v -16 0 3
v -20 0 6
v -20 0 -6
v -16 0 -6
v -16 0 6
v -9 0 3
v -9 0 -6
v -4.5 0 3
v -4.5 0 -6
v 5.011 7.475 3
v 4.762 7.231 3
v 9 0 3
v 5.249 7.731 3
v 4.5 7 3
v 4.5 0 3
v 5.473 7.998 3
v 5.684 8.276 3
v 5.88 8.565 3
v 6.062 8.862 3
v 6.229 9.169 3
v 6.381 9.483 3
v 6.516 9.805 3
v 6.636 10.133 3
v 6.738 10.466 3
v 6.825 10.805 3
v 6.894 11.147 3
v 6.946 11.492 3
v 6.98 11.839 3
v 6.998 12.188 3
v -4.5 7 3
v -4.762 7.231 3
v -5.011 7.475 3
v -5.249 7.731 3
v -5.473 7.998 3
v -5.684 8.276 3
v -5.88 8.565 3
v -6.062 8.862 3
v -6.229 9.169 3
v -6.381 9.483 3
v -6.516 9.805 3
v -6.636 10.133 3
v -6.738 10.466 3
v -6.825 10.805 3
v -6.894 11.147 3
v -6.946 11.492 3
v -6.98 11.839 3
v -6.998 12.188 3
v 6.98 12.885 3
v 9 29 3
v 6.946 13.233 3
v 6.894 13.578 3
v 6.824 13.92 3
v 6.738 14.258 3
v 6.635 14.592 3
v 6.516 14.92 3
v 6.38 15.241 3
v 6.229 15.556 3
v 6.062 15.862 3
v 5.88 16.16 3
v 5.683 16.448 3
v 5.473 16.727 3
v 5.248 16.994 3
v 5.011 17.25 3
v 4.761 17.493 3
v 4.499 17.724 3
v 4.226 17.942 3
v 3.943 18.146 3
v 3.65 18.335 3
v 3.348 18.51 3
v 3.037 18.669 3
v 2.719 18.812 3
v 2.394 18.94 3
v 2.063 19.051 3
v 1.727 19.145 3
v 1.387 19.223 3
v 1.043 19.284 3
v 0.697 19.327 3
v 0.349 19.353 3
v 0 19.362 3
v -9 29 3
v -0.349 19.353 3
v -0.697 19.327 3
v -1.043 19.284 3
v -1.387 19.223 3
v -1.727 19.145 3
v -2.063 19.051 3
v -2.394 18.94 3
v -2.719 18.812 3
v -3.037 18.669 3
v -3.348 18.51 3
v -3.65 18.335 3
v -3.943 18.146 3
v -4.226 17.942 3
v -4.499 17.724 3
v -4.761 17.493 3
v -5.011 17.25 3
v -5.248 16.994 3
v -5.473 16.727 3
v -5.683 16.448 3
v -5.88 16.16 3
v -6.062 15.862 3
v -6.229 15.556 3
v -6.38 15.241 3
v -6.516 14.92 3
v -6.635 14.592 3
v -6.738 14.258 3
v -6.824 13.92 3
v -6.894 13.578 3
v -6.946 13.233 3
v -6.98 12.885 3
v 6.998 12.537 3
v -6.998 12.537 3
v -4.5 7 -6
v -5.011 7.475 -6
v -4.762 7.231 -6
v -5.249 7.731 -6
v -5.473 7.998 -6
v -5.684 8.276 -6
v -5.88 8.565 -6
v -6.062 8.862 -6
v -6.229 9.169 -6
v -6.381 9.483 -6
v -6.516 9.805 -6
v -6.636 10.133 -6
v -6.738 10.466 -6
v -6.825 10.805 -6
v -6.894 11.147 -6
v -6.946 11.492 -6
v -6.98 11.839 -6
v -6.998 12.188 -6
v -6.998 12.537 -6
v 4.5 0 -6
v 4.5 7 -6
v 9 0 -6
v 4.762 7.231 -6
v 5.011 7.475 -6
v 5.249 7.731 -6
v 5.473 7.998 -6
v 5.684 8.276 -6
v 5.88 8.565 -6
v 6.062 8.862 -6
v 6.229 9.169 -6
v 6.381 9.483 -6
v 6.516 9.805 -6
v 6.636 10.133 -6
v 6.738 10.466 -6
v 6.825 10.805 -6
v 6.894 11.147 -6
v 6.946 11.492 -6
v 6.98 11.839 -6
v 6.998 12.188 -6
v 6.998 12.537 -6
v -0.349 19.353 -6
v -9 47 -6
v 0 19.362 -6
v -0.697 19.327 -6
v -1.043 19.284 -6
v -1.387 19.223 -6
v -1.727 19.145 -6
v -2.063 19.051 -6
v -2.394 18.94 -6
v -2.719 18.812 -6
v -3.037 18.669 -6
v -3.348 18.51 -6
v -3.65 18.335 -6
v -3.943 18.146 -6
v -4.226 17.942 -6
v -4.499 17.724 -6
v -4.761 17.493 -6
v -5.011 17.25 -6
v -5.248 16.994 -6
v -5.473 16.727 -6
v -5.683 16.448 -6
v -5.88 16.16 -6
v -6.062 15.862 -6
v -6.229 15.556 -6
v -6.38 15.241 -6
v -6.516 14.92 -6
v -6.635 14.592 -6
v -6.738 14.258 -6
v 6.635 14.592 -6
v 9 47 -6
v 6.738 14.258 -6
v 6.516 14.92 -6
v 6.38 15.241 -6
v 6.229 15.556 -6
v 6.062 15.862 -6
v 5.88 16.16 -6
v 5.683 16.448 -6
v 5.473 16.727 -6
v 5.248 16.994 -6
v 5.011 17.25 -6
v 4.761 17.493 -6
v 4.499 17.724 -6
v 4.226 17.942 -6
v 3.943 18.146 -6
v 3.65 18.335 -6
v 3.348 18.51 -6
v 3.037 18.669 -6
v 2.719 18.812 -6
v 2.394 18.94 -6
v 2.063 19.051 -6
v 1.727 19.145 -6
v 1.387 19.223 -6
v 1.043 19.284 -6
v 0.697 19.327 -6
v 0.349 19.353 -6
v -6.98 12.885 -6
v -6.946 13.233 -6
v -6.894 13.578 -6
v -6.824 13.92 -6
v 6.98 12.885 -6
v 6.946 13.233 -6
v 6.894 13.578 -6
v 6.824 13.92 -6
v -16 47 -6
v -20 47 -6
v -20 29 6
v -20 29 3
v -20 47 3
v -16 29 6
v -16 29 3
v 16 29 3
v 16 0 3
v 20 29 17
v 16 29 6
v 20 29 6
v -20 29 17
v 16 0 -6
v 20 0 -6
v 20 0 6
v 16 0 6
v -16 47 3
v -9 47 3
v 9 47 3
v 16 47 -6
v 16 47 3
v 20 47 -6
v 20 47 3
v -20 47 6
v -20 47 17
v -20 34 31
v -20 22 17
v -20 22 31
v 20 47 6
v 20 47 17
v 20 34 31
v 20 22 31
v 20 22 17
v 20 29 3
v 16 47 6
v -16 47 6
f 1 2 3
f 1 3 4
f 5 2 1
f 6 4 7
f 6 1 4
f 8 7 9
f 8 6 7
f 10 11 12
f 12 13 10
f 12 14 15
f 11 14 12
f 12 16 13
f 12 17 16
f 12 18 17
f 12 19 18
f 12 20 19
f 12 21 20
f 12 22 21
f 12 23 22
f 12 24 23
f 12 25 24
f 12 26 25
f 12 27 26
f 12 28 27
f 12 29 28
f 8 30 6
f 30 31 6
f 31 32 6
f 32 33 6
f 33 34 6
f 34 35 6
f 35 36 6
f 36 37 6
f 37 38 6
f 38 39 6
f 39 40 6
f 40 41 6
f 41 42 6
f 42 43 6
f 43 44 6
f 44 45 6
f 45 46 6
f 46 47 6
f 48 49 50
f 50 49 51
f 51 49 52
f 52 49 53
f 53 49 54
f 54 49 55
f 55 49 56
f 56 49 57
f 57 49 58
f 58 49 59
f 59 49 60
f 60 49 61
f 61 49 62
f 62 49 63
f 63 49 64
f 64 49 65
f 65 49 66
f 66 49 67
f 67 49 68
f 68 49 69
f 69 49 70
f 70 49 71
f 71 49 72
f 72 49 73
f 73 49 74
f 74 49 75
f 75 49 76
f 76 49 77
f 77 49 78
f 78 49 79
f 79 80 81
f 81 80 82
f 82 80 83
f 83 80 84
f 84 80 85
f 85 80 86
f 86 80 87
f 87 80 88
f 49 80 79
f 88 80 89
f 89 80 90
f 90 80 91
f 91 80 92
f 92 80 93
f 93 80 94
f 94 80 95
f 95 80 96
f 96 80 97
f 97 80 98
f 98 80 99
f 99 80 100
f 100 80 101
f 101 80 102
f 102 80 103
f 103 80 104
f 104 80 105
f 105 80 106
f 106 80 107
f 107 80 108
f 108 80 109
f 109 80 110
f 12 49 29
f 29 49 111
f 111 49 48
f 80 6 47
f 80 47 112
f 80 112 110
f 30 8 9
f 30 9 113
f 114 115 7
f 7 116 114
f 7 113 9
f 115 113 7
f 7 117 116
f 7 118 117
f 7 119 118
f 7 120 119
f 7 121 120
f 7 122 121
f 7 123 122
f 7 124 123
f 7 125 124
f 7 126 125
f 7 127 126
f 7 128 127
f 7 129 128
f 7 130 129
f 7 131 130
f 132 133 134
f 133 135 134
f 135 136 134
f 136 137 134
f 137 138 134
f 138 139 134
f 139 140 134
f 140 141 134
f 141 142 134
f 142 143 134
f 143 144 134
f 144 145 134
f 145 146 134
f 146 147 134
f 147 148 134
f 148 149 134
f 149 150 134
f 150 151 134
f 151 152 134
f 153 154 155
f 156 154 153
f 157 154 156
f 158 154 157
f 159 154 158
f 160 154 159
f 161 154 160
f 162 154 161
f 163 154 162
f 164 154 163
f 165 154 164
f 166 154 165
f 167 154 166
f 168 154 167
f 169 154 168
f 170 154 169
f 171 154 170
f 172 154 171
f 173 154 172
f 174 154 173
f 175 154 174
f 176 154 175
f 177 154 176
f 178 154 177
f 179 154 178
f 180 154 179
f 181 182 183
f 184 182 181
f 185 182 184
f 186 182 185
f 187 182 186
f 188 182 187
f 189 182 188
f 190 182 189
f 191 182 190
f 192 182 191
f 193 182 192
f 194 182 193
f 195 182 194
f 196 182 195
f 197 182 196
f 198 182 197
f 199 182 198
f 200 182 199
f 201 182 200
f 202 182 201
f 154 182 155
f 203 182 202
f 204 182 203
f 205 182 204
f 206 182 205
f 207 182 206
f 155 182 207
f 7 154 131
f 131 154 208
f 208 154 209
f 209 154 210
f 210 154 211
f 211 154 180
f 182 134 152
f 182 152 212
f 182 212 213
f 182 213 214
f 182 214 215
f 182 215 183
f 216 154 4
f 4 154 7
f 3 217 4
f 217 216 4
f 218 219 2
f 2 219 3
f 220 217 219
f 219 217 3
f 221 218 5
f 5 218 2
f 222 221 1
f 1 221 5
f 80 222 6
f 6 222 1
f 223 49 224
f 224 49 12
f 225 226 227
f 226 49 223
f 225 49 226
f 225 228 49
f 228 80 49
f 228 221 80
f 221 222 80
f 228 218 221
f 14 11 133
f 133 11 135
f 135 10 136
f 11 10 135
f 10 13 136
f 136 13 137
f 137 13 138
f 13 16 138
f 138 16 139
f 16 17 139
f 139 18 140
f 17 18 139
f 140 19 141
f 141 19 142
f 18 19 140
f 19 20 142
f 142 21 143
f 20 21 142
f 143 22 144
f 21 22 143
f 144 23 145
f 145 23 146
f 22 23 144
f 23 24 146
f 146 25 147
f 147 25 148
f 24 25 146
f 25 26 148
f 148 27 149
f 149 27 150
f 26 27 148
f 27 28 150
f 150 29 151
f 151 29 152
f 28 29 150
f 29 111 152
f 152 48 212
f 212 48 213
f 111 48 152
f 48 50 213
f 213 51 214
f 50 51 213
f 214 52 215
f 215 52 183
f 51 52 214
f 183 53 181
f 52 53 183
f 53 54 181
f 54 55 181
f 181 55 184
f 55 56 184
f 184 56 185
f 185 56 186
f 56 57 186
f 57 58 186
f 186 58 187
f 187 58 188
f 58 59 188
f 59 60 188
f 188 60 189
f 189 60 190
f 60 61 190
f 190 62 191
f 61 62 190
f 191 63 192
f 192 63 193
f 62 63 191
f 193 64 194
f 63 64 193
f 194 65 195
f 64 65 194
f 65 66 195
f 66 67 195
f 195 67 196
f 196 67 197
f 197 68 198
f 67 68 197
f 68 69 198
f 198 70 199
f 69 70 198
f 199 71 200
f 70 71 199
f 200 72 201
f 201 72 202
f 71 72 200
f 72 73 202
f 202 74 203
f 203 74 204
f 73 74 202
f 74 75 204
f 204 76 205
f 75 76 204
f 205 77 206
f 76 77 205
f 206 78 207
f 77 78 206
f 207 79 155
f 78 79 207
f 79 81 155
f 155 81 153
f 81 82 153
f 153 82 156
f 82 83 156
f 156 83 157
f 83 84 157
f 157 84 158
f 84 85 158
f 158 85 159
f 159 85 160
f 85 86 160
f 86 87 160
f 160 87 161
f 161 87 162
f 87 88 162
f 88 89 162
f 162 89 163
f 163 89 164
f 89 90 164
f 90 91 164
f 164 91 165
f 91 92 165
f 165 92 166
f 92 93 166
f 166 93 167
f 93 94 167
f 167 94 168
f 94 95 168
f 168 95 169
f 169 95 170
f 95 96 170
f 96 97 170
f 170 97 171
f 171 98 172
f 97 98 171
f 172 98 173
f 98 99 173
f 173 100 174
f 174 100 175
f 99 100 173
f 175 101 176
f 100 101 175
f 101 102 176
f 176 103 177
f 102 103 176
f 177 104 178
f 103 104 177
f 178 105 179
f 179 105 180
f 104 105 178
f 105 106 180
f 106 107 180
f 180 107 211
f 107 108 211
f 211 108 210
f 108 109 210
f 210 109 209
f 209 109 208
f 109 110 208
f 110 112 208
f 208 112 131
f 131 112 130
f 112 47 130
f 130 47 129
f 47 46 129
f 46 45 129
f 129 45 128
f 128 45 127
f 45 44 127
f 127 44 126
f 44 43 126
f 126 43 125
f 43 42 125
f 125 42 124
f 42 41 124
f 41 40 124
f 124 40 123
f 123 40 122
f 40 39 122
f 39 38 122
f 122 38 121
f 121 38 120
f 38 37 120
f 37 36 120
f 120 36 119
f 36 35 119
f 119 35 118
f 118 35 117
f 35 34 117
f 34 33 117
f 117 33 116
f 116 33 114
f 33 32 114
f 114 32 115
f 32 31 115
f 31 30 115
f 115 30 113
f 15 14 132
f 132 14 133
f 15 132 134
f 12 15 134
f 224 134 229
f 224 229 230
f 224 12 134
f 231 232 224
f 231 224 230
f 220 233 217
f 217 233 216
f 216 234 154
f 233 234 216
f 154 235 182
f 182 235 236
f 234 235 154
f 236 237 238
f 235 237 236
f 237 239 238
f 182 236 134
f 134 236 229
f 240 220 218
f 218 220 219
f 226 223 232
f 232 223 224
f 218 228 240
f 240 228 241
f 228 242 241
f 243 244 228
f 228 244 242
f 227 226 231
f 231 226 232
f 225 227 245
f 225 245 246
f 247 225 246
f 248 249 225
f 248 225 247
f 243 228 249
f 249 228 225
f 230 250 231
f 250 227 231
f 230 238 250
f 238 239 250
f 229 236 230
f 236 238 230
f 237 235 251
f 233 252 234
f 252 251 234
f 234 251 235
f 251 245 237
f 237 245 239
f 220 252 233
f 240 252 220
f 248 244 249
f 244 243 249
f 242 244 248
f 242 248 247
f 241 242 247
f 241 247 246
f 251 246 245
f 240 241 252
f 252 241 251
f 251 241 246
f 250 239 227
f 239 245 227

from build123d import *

# Parameters (mm, degrees)
PAD_DEPTH         = 20
POCKET_DEPTH      = 6.001
POCKET_DEPTH_BACK = -31.001


with BuildPart() as part:
    # AdditivePipe: sweep along a path in Sketch
    with BuildLine(Plane.XY) as additivepipe_path:
        Line((0, 0), (0, 47))
    # Sketch001 → AdditivePipe (sweep)
    with BuildSketch(Plane.XZ):
        Polygon((-20, 6), (-20, -6), (-16, -6), (-9, -6), (9, -6), (16, -6), (20, -6), (20, 6), (16, 6), (16, 3), (9, 3), (-9, 3), (-16, 3), (-16, 6), align=None)
    sweep(path=additivepipe_path.line)

    # Sketch002 → Pad (new body, symmetric)
    with BuildSketch(Plane.YZ):
        Polygon((47, 6), (47, 17), (34, 31), (22, 31), (22, 17), (29, 17), (29, 3), (47, 3), align=None)
    extrude(amount=PAD_DEPTH, both=True)

    # Sketch003 → Pocket (cut, two sides)
    with BuildSketch(Plane.XY) as pocket_sk:
        with BuildLine():
            Line((-4.5, 0), (4.5, 0))
            Line((4.5, 0), (4.5, 7))
            ThreePointArc((4.5, 7), (0, 19.361903), (-4.5, 7))
            Line((-4.5, 0), (-4.5, 7))
        make_face()
    extrude(amount=-POCKET_DEPTH, mode=Mode.SUBTRACT)
    extrude(pocket_sk.sketch, amount=-POCKET_DEPTH_BACK, mode=Mode.SUBTRACT)


solid = part.part
